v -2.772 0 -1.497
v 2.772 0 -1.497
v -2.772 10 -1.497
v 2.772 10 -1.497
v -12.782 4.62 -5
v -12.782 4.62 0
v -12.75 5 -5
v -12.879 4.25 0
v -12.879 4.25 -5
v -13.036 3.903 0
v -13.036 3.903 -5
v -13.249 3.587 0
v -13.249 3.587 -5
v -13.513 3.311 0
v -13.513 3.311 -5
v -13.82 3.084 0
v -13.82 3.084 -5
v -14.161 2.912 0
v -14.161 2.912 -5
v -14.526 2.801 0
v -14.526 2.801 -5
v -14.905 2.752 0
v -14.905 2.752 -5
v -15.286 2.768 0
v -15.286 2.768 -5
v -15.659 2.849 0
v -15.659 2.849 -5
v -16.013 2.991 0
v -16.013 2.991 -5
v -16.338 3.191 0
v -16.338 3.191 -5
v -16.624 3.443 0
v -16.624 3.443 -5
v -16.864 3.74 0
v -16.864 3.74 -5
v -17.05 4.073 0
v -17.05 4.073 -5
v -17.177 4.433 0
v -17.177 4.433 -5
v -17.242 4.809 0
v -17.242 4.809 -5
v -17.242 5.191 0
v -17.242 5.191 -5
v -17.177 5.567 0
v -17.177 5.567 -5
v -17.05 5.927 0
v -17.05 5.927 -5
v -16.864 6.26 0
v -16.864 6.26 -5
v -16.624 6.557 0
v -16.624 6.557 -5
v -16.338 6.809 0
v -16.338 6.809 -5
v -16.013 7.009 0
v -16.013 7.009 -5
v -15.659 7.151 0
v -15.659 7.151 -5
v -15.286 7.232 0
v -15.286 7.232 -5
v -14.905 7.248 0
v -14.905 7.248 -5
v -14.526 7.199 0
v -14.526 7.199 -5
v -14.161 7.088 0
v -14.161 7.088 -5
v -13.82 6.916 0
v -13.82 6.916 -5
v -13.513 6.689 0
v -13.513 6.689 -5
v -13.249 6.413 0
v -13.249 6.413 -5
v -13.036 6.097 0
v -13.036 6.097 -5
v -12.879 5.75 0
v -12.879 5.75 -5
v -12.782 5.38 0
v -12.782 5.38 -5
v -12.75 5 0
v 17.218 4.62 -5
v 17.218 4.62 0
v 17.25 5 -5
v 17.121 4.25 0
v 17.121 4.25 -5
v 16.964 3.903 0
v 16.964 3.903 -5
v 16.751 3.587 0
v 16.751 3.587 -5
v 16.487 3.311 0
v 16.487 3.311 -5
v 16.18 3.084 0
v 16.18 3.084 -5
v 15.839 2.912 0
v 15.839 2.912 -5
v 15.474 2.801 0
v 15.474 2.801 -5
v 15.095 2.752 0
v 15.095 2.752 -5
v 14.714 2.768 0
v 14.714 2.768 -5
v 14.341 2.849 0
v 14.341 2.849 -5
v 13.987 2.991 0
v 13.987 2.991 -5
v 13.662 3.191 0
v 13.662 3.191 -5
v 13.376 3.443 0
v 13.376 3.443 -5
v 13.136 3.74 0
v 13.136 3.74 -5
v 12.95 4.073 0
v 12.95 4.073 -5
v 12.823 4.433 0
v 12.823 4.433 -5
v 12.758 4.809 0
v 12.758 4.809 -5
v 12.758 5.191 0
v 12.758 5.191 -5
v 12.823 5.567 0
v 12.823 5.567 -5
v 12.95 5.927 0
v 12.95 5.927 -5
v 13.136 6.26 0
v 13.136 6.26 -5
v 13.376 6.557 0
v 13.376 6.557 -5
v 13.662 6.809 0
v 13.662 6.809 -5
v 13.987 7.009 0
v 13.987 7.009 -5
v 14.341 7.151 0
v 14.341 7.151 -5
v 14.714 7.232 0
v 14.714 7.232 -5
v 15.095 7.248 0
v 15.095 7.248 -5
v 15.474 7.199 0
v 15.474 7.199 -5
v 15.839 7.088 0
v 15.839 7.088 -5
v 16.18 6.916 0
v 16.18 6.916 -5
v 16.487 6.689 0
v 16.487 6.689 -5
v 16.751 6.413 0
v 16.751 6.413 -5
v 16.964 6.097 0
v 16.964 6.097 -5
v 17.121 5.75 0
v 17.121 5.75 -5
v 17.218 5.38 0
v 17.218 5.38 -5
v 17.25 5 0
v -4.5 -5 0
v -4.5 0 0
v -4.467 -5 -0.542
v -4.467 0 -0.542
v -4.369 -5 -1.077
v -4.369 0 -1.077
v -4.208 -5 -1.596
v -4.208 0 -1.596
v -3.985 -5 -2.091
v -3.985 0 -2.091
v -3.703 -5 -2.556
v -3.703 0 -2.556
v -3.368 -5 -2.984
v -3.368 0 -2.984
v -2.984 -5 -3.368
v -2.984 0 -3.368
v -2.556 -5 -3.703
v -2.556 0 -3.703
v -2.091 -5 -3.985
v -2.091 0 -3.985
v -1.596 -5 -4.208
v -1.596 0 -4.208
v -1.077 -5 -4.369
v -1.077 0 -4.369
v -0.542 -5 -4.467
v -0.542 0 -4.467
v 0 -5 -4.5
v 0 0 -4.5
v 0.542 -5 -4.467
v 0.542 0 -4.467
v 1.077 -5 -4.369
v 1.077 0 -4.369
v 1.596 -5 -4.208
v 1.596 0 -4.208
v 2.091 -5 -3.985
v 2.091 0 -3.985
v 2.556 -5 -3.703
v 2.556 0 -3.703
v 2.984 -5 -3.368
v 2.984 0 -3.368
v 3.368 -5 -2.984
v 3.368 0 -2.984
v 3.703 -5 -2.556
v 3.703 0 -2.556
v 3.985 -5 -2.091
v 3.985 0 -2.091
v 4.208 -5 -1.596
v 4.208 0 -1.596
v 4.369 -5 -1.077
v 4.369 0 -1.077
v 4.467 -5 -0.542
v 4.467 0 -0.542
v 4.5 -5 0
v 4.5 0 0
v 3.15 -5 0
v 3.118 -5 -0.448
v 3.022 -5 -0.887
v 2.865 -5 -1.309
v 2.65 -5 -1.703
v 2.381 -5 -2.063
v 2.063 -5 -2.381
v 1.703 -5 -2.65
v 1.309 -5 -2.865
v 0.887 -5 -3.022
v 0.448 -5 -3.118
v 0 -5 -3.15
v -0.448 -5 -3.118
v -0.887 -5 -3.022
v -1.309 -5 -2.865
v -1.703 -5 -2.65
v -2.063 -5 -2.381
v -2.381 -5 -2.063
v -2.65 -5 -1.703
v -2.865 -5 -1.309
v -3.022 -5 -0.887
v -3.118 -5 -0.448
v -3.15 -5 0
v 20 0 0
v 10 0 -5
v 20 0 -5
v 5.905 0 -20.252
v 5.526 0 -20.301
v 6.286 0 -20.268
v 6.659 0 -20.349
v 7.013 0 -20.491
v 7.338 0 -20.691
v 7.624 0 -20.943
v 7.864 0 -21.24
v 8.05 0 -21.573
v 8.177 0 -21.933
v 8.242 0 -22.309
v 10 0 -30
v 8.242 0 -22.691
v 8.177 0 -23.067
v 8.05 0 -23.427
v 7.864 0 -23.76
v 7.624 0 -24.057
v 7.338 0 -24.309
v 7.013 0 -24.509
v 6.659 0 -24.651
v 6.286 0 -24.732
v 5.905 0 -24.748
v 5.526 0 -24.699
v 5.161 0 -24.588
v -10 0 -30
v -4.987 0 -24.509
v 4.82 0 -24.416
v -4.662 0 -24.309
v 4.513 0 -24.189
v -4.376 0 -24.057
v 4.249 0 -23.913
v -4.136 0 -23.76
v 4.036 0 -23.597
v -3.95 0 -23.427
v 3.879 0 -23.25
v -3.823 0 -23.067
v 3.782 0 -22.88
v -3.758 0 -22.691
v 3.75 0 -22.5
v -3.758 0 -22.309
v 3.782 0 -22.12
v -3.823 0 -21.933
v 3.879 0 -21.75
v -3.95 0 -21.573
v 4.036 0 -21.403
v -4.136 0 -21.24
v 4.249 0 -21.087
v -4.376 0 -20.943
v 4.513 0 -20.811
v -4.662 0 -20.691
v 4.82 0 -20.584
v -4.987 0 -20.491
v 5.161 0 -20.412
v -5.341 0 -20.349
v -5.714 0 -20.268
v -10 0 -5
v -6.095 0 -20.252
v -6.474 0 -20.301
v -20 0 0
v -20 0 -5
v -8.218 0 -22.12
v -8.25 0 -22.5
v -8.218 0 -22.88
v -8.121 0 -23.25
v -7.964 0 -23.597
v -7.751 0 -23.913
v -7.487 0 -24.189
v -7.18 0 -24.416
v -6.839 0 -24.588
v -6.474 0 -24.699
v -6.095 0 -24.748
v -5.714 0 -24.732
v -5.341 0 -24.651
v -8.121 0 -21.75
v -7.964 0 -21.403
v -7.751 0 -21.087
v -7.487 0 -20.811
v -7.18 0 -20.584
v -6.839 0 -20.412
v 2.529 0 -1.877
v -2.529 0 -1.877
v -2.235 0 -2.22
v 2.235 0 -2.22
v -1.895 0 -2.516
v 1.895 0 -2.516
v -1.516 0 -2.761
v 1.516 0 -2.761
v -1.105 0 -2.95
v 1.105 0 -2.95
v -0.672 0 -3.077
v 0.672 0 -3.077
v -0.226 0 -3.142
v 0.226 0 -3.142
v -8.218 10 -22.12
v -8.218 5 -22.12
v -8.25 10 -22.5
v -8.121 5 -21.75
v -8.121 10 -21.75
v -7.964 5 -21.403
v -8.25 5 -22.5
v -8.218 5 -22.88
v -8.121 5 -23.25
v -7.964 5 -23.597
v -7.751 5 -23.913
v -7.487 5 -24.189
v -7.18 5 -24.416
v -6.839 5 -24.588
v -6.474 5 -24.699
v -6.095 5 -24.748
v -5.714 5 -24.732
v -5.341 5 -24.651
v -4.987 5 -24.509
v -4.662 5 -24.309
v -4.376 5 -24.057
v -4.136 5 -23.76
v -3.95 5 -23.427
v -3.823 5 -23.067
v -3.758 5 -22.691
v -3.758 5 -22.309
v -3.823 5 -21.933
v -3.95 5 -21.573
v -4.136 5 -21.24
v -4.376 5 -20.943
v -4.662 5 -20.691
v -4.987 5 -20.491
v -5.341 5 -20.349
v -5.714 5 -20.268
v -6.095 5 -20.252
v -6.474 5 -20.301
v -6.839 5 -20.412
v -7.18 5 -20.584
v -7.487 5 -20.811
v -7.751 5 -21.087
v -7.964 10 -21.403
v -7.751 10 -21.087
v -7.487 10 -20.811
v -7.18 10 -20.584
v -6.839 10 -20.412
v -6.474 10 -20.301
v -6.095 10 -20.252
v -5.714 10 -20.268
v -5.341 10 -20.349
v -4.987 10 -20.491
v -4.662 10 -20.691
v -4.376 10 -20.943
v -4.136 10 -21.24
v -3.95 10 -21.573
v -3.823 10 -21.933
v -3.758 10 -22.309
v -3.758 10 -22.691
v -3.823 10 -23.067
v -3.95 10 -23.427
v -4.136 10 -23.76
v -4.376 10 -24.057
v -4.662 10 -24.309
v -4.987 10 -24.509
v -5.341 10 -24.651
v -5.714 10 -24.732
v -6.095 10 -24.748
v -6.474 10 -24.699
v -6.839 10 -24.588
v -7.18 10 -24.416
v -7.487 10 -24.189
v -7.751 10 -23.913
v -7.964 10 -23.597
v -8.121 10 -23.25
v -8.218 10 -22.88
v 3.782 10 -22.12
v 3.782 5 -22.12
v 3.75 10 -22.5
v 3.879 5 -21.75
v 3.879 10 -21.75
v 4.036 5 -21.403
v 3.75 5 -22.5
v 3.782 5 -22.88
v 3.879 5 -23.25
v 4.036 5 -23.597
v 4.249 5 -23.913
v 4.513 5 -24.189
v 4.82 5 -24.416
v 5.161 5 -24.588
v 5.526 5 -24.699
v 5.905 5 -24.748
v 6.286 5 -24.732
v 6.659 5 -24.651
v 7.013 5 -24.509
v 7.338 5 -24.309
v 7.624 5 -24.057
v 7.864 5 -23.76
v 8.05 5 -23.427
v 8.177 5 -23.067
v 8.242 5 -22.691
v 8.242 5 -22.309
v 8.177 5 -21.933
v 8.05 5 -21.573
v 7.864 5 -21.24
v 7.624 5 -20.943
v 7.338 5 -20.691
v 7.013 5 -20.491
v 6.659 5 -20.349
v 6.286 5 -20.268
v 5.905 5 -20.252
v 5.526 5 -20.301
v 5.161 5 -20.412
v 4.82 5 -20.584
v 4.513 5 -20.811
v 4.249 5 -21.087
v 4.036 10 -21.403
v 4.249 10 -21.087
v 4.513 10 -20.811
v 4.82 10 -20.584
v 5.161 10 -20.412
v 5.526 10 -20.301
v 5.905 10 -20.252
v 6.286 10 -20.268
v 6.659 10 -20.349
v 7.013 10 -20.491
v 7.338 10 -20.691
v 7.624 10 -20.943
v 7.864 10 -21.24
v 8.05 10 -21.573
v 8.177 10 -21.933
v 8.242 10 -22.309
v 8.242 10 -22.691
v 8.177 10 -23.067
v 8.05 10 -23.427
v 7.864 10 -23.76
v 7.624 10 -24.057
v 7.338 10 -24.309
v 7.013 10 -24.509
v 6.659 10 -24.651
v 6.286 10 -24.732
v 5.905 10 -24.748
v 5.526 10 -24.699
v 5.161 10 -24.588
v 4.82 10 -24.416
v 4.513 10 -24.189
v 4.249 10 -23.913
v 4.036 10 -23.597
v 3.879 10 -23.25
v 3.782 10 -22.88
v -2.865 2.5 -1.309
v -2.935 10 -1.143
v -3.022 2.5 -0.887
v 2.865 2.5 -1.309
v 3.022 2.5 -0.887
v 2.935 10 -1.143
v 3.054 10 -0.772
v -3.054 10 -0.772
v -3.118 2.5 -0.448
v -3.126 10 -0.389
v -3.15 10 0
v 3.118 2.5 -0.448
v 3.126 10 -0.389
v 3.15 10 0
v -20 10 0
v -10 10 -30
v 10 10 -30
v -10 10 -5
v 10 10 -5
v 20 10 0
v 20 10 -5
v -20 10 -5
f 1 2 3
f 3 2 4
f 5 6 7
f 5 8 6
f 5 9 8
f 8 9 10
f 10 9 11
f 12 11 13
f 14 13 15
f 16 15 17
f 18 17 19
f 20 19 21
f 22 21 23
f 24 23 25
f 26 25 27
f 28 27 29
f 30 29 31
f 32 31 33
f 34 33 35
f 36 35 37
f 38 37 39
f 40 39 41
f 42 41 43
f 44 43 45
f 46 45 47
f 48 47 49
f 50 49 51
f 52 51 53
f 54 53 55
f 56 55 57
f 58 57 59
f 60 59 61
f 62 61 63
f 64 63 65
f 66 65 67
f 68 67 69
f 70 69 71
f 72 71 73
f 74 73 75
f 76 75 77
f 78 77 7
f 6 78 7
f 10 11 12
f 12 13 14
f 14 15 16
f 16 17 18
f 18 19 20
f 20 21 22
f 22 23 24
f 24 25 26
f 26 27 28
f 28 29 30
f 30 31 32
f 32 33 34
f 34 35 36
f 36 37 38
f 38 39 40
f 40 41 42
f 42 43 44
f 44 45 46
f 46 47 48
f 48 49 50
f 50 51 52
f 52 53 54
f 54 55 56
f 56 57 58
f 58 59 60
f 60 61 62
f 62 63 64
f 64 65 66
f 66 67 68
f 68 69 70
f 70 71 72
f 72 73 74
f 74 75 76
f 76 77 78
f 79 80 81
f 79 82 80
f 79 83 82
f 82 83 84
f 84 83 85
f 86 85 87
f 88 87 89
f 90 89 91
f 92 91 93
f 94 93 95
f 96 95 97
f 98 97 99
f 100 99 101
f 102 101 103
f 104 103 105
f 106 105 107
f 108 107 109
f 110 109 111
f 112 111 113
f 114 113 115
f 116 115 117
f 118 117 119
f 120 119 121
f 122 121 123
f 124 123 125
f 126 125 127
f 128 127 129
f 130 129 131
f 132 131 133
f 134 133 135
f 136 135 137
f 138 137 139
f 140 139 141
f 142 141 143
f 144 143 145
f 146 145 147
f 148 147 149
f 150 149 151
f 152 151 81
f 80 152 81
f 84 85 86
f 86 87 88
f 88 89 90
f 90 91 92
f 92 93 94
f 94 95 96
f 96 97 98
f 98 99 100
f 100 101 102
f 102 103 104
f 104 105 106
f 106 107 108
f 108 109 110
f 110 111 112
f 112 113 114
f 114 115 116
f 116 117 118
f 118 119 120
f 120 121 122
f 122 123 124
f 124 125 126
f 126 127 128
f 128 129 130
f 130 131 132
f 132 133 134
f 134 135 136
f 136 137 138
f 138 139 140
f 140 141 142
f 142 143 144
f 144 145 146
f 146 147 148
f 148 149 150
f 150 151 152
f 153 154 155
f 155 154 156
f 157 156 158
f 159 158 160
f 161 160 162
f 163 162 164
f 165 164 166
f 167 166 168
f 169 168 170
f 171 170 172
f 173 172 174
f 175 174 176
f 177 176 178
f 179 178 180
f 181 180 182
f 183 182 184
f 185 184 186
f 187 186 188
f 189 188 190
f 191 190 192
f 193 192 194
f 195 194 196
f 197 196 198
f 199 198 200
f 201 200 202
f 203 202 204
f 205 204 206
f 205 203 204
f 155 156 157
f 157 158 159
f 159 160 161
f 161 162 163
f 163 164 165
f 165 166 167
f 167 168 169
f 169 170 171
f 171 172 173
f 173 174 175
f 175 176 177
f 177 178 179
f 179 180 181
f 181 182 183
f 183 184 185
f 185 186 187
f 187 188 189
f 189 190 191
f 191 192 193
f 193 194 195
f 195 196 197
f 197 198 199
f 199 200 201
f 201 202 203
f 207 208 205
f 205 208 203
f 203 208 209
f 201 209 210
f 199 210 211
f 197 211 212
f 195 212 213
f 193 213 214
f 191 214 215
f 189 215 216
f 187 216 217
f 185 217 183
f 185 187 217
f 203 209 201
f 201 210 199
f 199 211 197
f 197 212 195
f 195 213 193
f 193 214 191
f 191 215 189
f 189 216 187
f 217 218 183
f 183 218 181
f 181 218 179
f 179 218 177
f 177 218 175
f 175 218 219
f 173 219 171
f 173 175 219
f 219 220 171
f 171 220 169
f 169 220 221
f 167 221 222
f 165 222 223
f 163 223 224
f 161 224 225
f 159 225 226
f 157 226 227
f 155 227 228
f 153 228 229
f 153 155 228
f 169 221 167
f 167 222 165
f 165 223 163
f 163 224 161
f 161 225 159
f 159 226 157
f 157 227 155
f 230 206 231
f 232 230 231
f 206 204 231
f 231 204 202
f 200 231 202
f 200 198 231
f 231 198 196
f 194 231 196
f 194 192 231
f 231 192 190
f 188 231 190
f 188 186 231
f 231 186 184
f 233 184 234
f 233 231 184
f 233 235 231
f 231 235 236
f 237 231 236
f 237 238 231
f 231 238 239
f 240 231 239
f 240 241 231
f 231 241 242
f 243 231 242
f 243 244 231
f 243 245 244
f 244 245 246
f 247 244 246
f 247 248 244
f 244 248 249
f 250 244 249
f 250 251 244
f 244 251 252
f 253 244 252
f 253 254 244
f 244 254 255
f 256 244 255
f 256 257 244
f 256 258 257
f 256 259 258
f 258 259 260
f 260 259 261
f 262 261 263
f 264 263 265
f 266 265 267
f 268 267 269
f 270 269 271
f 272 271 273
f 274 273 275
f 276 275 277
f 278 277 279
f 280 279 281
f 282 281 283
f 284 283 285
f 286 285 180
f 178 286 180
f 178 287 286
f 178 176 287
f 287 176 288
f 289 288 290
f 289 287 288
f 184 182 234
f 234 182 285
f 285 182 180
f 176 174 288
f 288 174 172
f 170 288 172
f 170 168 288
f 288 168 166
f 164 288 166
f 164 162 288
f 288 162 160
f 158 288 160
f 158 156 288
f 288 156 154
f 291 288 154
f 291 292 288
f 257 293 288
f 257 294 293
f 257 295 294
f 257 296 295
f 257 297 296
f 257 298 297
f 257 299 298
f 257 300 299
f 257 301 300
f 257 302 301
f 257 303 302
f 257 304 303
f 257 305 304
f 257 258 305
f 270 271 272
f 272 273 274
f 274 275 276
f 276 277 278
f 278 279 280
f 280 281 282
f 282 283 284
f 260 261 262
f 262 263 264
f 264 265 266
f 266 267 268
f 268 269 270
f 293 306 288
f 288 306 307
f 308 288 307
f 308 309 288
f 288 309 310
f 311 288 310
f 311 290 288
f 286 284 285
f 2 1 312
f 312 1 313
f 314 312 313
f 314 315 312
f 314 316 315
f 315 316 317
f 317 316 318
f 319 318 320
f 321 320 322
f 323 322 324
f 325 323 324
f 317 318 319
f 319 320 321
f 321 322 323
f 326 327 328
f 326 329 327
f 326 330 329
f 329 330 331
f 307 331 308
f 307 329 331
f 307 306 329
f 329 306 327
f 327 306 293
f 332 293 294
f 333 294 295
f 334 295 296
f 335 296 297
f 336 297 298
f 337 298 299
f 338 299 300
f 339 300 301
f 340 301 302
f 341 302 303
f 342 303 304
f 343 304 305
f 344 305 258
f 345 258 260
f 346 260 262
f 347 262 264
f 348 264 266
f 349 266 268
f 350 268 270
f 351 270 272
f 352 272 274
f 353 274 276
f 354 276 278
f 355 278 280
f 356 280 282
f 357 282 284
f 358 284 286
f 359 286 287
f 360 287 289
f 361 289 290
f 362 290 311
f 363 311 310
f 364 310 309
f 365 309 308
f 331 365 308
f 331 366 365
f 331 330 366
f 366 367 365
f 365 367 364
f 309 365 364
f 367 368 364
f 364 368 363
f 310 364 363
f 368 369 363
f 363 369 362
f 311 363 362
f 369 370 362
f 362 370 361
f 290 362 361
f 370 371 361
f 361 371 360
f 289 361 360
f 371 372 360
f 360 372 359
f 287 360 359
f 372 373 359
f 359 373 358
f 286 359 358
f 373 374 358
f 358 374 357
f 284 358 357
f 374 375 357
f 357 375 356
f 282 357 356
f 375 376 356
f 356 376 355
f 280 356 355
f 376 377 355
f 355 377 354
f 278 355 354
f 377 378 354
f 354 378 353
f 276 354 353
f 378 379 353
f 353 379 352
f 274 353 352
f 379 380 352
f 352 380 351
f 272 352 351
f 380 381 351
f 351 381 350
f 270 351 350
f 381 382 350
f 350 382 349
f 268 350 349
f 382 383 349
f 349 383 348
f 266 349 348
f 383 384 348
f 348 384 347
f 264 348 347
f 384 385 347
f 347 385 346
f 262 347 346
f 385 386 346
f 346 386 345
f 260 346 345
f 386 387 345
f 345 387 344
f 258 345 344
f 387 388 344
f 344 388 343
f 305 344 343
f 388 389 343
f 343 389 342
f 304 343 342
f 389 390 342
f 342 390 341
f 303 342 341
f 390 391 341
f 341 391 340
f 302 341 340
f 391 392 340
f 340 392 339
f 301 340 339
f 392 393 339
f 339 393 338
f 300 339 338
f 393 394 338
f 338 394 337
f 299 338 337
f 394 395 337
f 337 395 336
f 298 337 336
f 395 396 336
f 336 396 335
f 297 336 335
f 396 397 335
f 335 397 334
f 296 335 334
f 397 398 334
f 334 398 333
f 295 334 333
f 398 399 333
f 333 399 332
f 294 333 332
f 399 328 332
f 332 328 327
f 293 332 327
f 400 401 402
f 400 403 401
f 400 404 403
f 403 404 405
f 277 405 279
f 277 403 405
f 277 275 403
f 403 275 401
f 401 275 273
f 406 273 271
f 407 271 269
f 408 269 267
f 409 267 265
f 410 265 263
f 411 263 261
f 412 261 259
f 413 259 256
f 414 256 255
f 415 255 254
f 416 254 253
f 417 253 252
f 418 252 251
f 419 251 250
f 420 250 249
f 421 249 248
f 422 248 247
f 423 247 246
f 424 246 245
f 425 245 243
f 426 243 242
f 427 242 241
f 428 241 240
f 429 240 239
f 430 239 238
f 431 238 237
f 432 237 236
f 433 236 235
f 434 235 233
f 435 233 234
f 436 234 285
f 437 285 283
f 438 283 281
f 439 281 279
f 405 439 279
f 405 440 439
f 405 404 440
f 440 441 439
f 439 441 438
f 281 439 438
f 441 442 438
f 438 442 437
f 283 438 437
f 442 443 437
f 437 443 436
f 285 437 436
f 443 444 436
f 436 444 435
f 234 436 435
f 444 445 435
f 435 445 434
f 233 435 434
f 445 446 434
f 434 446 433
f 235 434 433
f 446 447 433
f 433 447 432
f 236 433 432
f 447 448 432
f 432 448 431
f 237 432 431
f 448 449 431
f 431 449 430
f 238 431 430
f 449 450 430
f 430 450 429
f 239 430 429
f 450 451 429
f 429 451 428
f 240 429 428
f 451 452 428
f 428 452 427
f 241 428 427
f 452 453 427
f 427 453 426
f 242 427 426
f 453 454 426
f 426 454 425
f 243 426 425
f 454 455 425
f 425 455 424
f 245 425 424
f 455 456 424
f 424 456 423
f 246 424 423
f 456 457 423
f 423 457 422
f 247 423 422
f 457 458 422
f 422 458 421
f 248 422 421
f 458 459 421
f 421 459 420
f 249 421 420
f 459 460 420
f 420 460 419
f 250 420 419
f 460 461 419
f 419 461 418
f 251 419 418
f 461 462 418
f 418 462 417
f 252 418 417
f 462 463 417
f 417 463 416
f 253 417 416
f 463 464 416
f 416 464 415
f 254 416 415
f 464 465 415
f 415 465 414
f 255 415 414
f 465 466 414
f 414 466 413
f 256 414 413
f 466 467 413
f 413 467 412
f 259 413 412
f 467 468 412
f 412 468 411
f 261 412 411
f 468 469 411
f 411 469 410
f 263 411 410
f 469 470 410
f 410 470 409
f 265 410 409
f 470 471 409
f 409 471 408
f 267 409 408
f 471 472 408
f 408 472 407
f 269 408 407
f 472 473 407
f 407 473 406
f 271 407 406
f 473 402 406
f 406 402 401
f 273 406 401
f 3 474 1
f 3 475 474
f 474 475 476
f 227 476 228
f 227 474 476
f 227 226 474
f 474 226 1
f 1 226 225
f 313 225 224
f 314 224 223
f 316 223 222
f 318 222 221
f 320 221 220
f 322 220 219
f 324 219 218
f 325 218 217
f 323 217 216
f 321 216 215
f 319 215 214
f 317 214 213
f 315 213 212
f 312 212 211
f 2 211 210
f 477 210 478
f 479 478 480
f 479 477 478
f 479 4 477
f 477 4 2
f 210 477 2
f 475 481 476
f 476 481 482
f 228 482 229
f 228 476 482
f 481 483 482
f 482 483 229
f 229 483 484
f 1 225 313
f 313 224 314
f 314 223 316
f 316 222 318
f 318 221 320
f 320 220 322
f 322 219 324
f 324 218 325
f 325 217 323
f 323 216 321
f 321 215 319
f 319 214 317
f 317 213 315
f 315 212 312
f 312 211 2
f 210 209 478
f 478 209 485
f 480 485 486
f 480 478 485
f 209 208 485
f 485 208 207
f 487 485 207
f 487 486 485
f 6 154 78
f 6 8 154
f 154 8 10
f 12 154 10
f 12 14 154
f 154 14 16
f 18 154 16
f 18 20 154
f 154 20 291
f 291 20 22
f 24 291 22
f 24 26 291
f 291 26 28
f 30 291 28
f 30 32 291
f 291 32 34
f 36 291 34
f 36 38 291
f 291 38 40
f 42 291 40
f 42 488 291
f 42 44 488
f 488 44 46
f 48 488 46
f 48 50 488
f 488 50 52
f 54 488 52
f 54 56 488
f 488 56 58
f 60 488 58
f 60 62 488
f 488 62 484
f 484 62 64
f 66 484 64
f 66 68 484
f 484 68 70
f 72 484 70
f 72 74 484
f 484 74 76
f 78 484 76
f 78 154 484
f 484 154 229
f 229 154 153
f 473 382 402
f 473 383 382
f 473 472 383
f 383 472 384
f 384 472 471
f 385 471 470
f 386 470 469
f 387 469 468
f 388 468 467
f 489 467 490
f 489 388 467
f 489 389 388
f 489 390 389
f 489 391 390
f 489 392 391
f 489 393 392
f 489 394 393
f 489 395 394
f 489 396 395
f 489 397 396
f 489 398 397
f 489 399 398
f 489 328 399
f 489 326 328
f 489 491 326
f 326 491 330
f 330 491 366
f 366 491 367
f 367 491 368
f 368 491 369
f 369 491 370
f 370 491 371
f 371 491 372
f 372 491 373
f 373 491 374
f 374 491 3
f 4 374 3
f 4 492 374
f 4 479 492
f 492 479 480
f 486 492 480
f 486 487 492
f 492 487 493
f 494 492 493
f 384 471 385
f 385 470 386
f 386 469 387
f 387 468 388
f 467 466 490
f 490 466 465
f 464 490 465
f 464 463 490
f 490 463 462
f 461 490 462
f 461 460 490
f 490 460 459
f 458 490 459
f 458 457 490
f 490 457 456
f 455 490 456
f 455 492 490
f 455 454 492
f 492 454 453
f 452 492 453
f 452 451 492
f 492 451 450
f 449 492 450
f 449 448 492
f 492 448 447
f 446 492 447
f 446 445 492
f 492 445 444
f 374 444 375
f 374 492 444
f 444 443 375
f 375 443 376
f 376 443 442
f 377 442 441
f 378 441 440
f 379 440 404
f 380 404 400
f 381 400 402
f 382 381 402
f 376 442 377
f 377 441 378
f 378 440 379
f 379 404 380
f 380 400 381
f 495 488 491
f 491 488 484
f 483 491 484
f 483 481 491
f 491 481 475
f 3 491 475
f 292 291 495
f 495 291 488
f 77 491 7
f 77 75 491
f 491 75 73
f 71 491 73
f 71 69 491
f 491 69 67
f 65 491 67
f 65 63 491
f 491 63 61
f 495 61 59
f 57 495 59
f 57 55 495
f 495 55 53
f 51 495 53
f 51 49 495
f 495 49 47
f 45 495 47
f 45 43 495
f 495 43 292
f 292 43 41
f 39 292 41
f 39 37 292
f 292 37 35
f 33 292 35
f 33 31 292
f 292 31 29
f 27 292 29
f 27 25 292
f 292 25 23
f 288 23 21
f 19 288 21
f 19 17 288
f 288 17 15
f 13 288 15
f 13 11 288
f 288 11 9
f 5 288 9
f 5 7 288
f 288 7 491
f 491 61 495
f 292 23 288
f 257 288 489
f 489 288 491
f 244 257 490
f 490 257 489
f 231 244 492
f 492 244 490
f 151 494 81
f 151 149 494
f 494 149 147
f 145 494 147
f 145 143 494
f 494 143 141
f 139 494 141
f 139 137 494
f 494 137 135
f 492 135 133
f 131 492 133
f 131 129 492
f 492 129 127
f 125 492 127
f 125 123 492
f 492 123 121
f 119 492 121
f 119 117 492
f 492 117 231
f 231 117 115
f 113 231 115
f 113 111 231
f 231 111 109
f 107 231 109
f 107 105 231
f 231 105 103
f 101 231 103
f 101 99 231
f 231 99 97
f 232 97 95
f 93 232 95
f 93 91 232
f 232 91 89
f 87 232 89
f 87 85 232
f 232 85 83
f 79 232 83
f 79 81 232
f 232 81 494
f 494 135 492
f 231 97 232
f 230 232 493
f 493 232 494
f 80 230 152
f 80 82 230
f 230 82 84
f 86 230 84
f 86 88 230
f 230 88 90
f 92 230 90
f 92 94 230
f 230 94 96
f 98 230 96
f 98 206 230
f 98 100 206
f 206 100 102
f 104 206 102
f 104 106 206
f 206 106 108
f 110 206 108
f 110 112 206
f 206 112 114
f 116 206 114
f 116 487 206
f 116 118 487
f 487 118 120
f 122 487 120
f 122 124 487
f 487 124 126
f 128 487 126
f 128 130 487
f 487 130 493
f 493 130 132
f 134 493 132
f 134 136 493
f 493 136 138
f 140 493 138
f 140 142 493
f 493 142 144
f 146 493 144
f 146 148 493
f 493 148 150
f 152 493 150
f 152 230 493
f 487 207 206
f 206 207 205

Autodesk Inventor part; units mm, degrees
ref_plane "YZ Plane" through (0, 0, 0) normal (1, 0, 0) x (0, 1, 0)
ref_plane "XZ Plane" through (0, 0, 0) normal (0, 1, 0) x (-1, 0, 0)
ref_plane "XY Plane" through (0, 0, 0) normal (0, 0, 1) x (1, 0, 0)
sketch "Sketch1" plane through (0, 0, 0) normal (0, 1, 0) x (-1, 0, 0)
  circle A0 centre (0, 0) radius 3.15
  line L0 (10, 0) -> (10, 30)
  line L1 (10, 30) -> (-10, 30)
  line L2 (-10, 30) -> (-10, 0)
  line L3 (10, -5) -> (10, -30)
  line L4 (10, -30) -> (-10, -30)
  line L5 (-10, -30) -> (-10, -5)
  line L6 (-10, 30) -> (-10, 15)
  line L7 (10, 30) -> (10, 15)
  line L8 (10, -30) -> (10, -15)
  line L9 (-10, -15) -> (-10, -30)
  line L10 (2.5151, -1.8965) -> (-2.5151, -1.8965)
  circle A1 centre (0, 0) radius 4.5
  line L11 (10, 0) -> (3.15, 0)
  line L12 (-3.15, 0) -> (-10, 0)
  line L13 (-10, 0) -> (-20, 0)
  line L14 (-20, 0) -> (-20, -5)
  line L15 (-20, -5) -> (-10, -5)
  line L16 (10, 0) -> (20, 0)
  line L17 (20, 0) -> (20, -5)
  line L18 (20, -5) -> (10, -5)
  line L19 (-4.5, 0) -> (-3.15, 0)
  line L20 (3.15, 0) -> (4.5, 0)
  circle A2 centre (6, 22.5) radius 2.25
  circle A3 centre (-5, 22.5) radius 2.25
  circle A4 centre (-6, -22.5) radius 2.25
  circle A5 centre (6, -22.5) radius 2.25
  line L21 (0, -1.8965) -> (0, -1.4965)
  line L22 (0, -1.4965) -> (-2.7718, -1.4965)
  line L23 (0, -1.4965) -> (2.7718, -1.4965)
  dimension "d0" = 6.3
  dimension "d6" = 15
  dimension "d34" = 9
  dimension "d35" = 10
  dimension "d36" = 5
  dimension "d37" = 10
  dimension "d38" = 5
  dimension "d43" = 4.5
  dimension "d44" = 4.5
  dimension "d45" = 4.5
  dimension "d46" = 4.5
  dimension "d59" = 0.4
extrude "Extrusion10" add sketch "Sketch1" along normal blind 10 contours L11 A1 L12 A0 | L11 L16 L17 L18 L3 L4 L5 L15 L14 L13 L12 A1 | A0 L10 picked at (3.9921, -0.5315)
extrude "Extrusion11" add sketch "Sketch1" against normal blind 5 contours L11 A1 L12 A0 picked at (3.9921, -0.5315)
sketch "Sketch3" plane through (3.15, 10, 0) normal (0, 0, 1) x (1, 0, 0)
  line L0 (16.85, 0) -> (16.85, -5)
  line L1 (16.85, -10) -> (16.85, 0) projected
  line L2 (16.85, -5) -> (11.85, -5)
  line L3 (-23.15, 0) -> (-23.15, -5)
  line L4 (-23.15, -10) -> (-23.15, 0) projected
  line L5 (-23.15, -5) -> (-18.15, -5)
  circle A0 centre (-18.15, -5) radius 2.25
  circle A1 centre (11.85, -5) radius 2.25
  point P0 (-3.15, -10)
  dimension "d51" = 5
  dimension "d52" = 5
  dimension "d53" = 5
  dimension "d54" = 5
  dimension "d55" = 4.5
  dimension "d56" = 4.5
extrude "Extrusion12" cut sketch "Sketch3" against normal blind 10
extrude "Extrusion13" add sketch "Sketch1" along normal blind 10 contours A0 L10 L21 L23 | L22 L21 L10 A0
properties part number "clip_to_shaft_holder"
